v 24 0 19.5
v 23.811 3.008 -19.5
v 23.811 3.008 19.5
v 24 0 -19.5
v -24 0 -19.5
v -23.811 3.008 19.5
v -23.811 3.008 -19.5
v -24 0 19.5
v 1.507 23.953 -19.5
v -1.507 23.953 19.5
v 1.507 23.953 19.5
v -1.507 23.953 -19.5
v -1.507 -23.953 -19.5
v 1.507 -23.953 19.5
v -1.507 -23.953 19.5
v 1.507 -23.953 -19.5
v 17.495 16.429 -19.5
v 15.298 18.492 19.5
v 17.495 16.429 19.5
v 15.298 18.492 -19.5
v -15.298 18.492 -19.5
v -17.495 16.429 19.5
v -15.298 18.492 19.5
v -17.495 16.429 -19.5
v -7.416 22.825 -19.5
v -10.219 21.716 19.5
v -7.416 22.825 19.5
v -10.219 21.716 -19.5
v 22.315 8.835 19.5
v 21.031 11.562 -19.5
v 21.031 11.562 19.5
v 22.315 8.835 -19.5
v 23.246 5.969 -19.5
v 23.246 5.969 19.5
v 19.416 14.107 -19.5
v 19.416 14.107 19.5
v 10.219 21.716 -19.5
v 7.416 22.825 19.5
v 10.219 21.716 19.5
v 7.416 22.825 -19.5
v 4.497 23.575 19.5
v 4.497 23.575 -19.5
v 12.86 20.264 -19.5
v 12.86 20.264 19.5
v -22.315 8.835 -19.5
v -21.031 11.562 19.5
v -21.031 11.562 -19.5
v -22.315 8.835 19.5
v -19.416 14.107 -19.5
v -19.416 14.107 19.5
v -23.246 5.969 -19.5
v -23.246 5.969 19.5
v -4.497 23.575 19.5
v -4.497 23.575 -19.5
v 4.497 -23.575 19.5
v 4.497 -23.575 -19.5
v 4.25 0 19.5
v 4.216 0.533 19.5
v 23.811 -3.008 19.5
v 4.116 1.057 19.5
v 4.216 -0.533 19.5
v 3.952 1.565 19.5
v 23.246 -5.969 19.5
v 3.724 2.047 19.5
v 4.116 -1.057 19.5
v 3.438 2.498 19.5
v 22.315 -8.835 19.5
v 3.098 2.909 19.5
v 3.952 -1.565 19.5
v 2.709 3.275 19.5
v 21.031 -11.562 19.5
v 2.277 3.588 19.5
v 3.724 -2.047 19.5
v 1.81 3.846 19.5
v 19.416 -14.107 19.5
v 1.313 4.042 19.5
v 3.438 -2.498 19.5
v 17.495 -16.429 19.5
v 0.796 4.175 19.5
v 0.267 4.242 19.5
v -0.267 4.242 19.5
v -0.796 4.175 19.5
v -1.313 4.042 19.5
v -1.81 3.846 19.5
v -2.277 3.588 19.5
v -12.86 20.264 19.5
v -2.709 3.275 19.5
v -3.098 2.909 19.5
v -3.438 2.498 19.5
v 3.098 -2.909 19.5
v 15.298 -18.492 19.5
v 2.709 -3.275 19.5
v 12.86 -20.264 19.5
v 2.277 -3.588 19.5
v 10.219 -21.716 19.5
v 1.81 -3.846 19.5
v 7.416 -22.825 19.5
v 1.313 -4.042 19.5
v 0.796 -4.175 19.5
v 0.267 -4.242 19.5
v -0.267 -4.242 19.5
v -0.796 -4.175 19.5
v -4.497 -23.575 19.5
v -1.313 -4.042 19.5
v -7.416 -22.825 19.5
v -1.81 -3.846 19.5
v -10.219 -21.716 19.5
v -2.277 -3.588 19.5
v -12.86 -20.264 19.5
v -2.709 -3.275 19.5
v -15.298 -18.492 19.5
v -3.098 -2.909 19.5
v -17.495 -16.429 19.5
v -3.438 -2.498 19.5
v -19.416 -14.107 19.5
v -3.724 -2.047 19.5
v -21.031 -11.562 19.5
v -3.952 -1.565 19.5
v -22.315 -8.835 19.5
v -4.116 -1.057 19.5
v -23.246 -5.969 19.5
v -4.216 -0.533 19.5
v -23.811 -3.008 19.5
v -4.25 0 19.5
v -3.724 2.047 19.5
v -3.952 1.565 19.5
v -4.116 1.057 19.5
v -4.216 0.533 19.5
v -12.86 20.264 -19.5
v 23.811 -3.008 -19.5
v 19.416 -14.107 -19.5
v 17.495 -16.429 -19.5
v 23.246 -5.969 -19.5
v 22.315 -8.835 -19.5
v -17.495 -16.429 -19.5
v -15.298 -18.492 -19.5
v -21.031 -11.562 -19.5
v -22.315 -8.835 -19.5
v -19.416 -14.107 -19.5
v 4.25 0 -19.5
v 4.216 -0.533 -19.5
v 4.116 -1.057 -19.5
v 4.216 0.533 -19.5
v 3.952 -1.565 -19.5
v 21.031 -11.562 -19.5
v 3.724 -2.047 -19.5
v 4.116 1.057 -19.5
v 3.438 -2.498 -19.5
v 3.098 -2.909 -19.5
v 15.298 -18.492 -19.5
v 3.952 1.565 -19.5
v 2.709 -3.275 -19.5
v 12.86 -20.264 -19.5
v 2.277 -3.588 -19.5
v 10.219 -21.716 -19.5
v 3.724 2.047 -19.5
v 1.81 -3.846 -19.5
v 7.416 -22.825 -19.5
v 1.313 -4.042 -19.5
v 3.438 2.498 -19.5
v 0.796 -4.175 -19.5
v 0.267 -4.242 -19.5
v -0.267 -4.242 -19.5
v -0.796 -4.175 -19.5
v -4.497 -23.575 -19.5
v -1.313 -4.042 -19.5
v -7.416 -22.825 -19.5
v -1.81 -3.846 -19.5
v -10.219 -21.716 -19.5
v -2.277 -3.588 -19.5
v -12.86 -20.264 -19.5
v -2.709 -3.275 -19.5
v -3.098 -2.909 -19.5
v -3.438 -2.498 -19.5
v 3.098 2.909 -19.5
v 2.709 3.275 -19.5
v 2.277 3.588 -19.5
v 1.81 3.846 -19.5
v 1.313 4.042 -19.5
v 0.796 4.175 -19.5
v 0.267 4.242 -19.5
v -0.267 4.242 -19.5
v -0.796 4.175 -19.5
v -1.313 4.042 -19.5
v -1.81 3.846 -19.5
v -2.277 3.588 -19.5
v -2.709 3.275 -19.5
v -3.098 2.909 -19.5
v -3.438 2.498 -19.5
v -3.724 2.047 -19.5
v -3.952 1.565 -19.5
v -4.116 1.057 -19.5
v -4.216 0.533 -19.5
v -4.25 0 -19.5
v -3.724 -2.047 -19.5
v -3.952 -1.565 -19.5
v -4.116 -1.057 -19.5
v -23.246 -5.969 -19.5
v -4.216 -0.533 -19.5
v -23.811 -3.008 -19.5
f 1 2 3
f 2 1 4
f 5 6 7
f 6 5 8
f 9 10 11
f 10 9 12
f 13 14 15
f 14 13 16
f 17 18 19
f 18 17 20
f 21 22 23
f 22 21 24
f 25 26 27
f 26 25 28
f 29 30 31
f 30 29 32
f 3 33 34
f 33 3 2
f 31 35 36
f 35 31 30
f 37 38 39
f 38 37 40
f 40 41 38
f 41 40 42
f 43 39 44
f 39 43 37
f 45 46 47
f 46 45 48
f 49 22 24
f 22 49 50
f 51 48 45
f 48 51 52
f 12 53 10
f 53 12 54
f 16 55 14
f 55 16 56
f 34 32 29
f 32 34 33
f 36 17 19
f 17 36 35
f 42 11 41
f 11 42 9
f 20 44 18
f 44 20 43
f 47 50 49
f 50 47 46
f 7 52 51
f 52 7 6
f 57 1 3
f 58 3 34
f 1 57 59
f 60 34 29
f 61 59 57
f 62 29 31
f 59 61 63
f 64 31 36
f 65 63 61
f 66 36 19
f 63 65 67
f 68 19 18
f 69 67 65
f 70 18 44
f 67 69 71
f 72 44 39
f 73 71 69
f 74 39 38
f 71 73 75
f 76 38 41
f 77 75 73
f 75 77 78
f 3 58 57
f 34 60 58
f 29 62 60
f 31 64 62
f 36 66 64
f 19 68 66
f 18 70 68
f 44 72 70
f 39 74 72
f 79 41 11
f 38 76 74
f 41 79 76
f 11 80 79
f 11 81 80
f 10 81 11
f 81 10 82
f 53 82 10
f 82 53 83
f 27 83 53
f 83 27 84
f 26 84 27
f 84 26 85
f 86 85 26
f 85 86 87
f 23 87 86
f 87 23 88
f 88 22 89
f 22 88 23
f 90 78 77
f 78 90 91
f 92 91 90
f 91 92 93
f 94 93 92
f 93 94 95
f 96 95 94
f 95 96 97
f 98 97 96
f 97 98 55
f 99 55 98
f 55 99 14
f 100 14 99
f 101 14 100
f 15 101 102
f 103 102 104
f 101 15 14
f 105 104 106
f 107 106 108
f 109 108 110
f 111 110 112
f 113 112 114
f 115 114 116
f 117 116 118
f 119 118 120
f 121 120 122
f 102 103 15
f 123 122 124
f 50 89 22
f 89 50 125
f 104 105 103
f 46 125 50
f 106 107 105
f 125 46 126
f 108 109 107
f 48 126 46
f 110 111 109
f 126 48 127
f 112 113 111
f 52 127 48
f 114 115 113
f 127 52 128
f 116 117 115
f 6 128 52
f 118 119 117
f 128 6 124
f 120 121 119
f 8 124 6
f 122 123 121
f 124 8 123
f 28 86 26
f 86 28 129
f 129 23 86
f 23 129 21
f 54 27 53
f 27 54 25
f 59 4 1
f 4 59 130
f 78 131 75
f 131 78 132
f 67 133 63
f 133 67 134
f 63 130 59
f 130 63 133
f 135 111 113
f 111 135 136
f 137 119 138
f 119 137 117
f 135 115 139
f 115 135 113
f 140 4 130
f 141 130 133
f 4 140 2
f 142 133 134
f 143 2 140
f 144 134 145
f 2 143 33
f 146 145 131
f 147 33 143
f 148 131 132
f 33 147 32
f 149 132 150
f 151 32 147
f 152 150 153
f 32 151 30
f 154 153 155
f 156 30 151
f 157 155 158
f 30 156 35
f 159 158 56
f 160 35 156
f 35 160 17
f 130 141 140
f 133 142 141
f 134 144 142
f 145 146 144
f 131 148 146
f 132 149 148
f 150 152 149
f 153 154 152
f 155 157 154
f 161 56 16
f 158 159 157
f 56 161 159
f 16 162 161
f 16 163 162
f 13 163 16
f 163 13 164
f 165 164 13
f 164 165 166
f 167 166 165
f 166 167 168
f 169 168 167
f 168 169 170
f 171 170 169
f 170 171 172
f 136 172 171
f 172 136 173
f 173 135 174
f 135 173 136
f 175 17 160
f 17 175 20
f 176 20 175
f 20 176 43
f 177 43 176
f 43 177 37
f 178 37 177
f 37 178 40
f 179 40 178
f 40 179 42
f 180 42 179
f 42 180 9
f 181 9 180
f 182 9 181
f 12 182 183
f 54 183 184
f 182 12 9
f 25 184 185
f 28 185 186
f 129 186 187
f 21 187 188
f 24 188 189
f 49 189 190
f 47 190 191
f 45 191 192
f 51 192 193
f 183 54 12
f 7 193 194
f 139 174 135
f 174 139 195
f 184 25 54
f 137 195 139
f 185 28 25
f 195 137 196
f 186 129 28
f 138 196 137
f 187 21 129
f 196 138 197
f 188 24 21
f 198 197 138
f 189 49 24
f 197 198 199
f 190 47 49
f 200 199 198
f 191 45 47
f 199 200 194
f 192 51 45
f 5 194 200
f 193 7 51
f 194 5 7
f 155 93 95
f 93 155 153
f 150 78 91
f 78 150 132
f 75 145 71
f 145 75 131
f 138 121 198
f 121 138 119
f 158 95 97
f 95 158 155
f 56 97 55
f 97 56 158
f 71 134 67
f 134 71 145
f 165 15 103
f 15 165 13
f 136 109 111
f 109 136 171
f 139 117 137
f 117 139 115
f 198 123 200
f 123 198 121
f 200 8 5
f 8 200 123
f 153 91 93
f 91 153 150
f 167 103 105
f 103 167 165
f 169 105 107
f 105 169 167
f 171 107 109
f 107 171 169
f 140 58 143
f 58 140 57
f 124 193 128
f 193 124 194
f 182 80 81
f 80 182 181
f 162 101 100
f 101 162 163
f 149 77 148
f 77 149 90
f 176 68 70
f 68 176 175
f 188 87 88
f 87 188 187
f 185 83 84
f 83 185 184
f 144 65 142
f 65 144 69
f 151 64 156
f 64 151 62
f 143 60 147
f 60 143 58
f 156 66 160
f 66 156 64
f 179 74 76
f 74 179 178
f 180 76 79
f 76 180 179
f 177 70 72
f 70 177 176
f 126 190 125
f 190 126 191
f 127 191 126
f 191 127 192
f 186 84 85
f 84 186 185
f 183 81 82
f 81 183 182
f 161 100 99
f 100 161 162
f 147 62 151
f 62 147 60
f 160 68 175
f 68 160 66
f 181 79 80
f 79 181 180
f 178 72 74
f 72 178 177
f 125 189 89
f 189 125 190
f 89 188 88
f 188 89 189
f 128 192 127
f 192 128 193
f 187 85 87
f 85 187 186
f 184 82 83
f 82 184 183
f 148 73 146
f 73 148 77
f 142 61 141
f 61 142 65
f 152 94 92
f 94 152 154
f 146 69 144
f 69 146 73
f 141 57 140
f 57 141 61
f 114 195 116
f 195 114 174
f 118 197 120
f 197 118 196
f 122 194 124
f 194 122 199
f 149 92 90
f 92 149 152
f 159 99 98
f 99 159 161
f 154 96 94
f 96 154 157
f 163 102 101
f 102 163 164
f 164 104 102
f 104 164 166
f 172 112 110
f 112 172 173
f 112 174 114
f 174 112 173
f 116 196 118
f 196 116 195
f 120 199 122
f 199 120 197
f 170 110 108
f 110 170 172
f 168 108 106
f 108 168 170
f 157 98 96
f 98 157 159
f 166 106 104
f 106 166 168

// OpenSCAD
$fn = 50;


difference() {
	union() {
		translate(v = [0, 0, -19.5000000000]) {
			cylinder(h = 39, r = 24.0000000000);
		}
	}
	union() {
		translate(v = [0, 0, -100.0000000000]) {
			cylinder(h = 200, r = 4.2500000000);
		}
	}
}
